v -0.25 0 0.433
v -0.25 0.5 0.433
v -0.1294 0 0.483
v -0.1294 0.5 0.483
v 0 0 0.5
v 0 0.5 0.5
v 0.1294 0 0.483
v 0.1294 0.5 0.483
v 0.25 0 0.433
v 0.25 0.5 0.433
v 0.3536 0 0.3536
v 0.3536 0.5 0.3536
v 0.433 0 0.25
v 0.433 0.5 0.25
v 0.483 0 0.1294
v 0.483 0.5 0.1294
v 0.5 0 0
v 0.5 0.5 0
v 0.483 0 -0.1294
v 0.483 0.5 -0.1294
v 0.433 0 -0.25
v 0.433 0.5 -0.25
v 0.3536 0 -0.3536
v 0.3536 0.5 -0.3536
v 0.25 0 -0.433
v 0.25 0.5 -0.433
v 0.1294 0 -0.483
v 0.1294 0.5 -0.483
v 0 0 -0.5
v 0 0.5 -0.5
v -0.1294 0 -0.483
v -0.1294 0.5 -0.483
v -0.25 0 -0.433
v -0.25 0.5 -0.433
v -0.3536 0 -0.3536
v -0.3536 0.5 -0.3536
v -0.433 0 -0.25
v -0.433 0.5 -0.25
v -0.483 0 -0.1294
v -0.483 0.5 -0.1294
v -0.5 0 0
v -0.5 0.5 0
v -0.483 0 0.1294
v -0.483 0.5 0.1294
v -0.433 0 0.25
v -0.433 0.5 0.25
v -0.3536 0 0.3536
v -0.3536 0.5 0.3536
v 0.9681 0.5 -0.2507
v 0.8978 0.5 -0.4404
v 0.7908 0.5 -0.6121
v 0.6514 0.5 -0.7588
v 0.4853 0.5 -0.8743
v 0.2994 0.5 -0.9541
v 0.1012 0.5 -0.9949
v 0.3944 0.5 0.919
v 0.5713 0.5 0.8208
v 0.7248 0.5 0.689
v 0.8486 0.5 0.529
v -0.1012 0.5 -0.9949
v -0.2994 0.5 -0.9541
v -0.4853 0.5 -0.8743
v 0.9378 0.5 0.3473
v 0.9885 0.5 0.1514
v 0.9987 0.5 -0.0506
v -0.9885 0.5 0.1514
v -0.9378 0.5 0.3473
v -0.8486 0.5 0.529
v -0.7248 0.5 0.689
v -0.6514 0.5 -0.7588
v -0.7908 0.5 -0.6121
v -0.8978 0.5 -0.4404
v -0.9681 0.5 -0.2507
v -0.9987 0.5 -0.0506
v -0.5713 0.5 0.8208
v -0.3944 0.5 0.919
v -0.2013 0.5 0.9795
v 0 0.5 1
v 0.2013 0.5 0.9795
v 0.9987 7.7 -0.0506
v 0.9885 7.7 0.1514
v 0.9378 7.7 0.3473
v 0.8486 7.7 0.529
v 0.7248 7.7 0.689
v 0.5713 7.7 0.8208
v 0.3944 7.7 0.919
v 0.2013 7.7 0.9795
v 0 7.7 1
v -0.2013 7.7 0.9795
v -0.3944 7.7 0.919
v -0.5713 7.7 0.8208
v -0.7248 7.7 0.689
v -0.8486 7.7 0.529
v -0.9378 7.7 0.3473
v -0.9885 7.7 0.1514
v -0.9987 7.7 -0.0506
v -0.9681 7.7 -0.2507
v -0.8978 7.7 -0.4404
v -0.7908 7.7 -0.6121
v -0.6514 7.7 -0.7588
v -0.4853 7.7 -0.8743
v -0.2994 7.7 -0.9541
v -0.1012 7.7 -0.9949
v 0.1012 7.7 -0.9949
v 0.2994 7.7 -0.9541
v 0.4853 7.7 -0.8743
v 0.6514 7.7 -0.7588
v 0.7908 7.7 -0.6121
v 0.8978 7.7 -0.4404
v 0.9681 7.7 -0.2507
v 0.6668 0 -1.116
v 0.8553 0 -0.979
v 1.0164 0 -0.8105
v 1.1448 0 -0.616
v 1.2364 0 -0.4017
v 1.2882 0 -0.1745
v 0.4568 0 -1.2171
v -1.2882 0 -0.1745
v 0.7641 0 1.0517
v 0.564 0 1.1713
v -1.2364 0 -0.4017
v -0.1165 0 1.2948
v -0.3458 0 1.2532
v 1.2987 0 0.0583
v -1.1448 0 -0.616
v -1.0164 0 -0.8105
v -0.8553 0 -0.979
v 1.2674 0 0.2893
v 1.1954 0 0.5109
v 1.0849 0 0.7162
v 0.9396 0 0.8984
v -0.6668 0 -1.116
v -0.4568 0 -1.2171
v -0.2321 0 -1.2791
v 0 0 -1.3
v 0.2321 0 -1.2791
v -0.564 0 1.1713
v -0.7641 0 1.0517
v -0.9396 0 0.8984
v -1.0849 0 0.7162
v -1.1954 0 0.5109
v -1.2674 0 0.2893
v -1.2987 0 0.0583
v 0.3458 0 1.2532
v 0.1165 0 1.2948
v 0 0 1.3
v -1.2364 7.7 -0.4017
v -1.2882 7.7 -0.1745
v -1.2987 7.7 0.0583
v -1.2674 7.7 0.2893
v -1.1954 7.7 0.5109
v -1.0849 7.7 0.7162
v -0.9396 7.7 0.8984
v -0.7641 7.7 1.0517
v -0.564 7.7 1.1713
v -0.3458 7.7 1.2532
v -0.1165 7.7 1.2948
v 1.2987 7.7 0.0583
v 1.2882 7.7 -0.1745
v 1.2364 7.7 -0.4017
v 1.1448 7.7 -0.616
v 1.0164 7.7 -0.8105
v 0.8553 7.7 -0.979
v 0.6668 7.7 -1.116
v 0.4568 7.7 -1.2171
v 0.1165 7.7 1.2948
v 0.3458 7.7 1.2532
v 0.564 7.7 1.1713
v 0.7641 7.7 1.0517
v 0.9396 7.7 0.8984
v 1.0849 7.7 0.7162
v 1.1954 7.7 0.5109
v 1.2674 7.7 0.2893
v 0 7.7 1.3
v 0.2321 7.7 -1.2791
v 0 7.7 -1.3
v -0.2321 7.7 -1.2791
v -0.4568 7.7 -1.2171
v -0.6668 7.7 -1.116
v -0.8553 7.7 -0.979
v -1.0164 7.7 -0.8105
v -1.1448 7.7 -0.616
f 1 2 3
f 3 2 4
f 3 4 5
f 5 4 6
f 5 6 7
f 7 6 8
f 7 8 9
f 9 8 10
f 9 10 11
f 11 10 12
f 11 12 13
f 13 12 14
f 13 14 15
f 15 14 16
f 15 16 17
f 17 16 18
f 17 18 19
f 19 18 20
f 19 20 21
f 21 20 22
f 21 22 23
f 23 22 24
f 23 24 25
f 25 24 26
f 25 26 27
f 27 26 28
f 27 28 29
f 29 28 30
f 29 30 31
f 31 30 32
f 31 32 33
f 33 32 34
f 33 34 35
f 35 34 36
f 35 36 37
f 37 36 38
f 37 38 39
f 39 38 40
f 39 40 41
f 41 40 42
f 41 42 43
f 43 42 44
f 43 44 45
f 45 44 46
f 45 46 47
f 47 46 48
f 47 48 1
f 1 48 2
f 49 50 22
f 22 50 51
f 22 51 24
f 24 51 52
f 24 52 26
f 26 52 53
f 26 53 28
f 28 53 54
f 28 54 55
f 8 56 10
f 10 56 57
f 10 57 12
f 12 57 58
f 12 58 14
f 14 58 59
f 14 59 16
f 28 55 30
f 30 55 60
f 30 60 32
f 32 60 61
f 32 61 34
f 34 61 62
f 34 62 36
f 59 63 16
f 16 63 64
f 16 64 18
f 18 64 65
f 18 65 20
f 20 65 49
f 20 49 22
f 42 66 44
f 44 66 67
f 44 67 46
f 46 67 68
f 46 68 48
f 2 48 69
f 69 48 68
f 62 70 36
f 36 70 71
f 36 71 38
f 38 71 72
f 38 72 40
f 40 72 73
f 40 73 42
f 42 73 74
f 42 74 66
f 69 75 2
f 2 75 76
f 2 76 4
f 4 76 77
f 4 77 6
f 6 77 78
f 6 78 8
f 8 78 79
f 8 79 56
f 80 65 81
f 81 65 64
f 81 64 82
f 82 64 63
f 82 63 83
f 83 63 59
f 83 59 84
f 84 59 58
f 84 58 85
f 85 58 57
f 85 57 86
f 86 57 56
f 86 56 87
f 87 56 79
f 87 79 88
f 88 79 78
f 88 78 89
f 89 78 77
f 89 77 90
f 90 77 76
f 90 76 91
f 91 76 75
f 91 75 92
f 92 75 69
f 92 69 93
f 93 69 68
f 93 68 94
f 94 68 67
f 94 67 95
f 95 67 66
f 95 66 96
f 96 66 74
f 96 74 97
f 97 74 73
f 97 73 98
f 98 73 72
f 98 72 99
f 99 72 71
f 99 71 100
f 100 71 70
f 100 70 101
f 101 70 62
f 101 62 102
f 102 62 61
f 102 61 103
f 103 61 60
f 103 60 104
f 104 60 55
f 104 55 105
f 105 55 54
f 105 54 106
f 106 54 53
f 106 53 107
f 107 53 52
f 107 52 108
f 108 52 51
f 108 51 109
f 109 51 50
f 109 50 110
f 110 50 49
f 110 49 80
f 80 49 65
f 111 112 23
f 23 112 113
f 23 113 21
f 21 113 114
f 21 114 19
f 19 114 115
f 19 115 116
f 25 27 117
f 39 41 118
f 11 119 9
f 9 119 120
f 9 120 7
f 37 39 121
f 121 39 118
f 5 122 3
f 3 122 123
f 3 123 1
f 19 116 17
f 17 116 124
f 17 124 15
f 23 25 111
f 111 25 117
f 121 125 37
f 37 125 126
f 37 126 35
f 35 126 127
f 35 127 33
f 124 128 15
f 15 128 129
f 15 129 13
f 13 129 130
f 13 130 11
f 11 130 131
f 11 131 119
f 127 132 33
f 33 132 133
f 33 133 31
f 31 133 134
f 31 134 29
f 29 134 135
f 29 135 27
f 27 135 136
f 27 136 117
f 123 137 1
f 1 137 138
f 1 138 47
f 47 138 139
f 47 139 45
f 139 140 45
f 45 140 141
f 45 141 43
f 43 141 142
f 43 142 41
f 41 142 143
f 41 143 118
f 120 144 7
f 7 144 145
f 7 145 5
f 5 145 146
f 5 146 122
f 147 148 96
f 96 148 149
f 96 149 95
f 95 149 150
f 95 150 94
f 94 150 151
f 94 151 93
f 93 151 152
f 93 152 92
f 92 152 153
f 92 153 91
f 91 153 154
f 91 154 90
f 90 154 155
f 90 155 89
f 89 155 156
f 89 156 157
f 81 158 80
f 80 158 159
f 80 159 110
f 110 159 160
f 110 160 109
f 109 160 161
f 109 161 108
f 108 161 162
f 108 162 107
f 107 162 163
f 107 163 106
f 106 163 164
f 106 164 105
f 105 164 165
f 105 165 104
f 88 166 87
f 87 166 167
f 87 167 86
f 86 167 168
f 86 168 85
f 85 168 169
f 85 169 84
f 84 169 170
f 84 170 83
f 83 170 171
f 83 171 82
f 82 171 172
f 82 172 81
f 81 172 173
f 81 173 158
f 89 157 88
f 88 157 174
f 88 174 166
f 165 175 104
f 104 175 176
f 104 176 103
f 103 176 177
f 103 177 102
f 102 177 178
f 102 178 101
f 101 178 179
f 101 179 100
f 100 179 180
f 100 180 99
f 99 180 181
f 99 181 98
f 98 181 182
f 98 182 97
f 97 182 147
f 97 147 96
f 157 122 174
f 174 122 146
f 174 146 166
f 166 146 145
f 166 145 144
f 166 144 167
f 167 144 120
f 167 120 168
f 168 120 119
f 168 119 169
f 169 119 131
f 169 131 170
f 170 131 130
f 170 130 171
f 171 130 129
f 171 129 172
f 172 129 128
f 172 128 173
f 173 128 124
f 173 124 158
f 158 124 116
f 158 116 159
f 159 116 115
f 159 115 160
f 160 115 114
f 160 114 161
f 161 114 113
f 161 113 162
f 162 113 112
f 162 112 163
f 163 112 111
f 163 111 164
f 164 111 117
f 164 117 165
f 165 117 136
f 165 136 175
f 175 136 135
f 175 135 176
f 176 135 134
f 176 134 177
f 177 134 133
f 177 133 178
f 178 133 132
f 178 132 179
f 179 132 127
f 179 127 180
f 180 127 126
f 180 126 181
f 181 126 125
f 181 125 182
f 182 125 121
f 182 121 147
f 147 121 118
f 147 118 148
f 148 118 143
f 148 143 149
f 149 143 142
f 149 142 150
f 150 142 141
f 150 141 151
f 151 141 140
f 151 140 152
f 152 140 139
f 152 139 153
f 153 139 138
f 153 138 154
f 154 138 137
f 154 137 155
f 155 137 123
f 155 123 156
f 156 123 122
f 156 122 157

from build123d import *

# Parameters (mm, degrees)
SKETCH1_R           = 1.3
BOSS_EXTRUDE1_DEPTH = 7.7
SKETCH2_R           = 1
CUT_EXTRUDE1_DEPTH  = 7.2
CUT_EXTRUDE2_REACH  = 9.7
SKETCH3_R           = 0.5


with BuildPart() as part:
    # Sketch1 → Boss-Extrude1 (new body)
    with BuildSketch(Plane(origin=(0, 0, 0), x_dir=(1, 0, 0), z_dir=(0, 1, 0))):
        Circle(SKETCH1_R)
    extrude(amount=BOSS_EXTRUDE1_DEPTH)

    # Sketch2 → Cut-Extrude1 (cut)
    with BuildSketch(Plane(origin=(0, 7.7, 0), x_dir=(1, 0, 0), z_dir=(0, 1, 0))):
        Circle(SKETCH2_R)
    extrude(amount=-CUT_EXTRUDE1_DEPTH, mode=Mode.SUBTRACT)

    # Sketch3 → Cut-Extrude2 (cut, up to next)
    with BuildSketch(Plane.XZ, mode=Mode.PRIVATE) as cut_extrude2_sk1:
        Circle(SKETCH3_R)
    cut_extrude2_tool1 = extrude(cut_extrude2_sk1.sketch, amount=-CUT_EXTRUDE2_REACH, mode=Mode.PRIVATE) & part.part
    add(cut_extrude2_tool1.solids().sort_by_distance((0, 0, 0))[0], mode=Mode.SUBTRACT)


solid = part.part
